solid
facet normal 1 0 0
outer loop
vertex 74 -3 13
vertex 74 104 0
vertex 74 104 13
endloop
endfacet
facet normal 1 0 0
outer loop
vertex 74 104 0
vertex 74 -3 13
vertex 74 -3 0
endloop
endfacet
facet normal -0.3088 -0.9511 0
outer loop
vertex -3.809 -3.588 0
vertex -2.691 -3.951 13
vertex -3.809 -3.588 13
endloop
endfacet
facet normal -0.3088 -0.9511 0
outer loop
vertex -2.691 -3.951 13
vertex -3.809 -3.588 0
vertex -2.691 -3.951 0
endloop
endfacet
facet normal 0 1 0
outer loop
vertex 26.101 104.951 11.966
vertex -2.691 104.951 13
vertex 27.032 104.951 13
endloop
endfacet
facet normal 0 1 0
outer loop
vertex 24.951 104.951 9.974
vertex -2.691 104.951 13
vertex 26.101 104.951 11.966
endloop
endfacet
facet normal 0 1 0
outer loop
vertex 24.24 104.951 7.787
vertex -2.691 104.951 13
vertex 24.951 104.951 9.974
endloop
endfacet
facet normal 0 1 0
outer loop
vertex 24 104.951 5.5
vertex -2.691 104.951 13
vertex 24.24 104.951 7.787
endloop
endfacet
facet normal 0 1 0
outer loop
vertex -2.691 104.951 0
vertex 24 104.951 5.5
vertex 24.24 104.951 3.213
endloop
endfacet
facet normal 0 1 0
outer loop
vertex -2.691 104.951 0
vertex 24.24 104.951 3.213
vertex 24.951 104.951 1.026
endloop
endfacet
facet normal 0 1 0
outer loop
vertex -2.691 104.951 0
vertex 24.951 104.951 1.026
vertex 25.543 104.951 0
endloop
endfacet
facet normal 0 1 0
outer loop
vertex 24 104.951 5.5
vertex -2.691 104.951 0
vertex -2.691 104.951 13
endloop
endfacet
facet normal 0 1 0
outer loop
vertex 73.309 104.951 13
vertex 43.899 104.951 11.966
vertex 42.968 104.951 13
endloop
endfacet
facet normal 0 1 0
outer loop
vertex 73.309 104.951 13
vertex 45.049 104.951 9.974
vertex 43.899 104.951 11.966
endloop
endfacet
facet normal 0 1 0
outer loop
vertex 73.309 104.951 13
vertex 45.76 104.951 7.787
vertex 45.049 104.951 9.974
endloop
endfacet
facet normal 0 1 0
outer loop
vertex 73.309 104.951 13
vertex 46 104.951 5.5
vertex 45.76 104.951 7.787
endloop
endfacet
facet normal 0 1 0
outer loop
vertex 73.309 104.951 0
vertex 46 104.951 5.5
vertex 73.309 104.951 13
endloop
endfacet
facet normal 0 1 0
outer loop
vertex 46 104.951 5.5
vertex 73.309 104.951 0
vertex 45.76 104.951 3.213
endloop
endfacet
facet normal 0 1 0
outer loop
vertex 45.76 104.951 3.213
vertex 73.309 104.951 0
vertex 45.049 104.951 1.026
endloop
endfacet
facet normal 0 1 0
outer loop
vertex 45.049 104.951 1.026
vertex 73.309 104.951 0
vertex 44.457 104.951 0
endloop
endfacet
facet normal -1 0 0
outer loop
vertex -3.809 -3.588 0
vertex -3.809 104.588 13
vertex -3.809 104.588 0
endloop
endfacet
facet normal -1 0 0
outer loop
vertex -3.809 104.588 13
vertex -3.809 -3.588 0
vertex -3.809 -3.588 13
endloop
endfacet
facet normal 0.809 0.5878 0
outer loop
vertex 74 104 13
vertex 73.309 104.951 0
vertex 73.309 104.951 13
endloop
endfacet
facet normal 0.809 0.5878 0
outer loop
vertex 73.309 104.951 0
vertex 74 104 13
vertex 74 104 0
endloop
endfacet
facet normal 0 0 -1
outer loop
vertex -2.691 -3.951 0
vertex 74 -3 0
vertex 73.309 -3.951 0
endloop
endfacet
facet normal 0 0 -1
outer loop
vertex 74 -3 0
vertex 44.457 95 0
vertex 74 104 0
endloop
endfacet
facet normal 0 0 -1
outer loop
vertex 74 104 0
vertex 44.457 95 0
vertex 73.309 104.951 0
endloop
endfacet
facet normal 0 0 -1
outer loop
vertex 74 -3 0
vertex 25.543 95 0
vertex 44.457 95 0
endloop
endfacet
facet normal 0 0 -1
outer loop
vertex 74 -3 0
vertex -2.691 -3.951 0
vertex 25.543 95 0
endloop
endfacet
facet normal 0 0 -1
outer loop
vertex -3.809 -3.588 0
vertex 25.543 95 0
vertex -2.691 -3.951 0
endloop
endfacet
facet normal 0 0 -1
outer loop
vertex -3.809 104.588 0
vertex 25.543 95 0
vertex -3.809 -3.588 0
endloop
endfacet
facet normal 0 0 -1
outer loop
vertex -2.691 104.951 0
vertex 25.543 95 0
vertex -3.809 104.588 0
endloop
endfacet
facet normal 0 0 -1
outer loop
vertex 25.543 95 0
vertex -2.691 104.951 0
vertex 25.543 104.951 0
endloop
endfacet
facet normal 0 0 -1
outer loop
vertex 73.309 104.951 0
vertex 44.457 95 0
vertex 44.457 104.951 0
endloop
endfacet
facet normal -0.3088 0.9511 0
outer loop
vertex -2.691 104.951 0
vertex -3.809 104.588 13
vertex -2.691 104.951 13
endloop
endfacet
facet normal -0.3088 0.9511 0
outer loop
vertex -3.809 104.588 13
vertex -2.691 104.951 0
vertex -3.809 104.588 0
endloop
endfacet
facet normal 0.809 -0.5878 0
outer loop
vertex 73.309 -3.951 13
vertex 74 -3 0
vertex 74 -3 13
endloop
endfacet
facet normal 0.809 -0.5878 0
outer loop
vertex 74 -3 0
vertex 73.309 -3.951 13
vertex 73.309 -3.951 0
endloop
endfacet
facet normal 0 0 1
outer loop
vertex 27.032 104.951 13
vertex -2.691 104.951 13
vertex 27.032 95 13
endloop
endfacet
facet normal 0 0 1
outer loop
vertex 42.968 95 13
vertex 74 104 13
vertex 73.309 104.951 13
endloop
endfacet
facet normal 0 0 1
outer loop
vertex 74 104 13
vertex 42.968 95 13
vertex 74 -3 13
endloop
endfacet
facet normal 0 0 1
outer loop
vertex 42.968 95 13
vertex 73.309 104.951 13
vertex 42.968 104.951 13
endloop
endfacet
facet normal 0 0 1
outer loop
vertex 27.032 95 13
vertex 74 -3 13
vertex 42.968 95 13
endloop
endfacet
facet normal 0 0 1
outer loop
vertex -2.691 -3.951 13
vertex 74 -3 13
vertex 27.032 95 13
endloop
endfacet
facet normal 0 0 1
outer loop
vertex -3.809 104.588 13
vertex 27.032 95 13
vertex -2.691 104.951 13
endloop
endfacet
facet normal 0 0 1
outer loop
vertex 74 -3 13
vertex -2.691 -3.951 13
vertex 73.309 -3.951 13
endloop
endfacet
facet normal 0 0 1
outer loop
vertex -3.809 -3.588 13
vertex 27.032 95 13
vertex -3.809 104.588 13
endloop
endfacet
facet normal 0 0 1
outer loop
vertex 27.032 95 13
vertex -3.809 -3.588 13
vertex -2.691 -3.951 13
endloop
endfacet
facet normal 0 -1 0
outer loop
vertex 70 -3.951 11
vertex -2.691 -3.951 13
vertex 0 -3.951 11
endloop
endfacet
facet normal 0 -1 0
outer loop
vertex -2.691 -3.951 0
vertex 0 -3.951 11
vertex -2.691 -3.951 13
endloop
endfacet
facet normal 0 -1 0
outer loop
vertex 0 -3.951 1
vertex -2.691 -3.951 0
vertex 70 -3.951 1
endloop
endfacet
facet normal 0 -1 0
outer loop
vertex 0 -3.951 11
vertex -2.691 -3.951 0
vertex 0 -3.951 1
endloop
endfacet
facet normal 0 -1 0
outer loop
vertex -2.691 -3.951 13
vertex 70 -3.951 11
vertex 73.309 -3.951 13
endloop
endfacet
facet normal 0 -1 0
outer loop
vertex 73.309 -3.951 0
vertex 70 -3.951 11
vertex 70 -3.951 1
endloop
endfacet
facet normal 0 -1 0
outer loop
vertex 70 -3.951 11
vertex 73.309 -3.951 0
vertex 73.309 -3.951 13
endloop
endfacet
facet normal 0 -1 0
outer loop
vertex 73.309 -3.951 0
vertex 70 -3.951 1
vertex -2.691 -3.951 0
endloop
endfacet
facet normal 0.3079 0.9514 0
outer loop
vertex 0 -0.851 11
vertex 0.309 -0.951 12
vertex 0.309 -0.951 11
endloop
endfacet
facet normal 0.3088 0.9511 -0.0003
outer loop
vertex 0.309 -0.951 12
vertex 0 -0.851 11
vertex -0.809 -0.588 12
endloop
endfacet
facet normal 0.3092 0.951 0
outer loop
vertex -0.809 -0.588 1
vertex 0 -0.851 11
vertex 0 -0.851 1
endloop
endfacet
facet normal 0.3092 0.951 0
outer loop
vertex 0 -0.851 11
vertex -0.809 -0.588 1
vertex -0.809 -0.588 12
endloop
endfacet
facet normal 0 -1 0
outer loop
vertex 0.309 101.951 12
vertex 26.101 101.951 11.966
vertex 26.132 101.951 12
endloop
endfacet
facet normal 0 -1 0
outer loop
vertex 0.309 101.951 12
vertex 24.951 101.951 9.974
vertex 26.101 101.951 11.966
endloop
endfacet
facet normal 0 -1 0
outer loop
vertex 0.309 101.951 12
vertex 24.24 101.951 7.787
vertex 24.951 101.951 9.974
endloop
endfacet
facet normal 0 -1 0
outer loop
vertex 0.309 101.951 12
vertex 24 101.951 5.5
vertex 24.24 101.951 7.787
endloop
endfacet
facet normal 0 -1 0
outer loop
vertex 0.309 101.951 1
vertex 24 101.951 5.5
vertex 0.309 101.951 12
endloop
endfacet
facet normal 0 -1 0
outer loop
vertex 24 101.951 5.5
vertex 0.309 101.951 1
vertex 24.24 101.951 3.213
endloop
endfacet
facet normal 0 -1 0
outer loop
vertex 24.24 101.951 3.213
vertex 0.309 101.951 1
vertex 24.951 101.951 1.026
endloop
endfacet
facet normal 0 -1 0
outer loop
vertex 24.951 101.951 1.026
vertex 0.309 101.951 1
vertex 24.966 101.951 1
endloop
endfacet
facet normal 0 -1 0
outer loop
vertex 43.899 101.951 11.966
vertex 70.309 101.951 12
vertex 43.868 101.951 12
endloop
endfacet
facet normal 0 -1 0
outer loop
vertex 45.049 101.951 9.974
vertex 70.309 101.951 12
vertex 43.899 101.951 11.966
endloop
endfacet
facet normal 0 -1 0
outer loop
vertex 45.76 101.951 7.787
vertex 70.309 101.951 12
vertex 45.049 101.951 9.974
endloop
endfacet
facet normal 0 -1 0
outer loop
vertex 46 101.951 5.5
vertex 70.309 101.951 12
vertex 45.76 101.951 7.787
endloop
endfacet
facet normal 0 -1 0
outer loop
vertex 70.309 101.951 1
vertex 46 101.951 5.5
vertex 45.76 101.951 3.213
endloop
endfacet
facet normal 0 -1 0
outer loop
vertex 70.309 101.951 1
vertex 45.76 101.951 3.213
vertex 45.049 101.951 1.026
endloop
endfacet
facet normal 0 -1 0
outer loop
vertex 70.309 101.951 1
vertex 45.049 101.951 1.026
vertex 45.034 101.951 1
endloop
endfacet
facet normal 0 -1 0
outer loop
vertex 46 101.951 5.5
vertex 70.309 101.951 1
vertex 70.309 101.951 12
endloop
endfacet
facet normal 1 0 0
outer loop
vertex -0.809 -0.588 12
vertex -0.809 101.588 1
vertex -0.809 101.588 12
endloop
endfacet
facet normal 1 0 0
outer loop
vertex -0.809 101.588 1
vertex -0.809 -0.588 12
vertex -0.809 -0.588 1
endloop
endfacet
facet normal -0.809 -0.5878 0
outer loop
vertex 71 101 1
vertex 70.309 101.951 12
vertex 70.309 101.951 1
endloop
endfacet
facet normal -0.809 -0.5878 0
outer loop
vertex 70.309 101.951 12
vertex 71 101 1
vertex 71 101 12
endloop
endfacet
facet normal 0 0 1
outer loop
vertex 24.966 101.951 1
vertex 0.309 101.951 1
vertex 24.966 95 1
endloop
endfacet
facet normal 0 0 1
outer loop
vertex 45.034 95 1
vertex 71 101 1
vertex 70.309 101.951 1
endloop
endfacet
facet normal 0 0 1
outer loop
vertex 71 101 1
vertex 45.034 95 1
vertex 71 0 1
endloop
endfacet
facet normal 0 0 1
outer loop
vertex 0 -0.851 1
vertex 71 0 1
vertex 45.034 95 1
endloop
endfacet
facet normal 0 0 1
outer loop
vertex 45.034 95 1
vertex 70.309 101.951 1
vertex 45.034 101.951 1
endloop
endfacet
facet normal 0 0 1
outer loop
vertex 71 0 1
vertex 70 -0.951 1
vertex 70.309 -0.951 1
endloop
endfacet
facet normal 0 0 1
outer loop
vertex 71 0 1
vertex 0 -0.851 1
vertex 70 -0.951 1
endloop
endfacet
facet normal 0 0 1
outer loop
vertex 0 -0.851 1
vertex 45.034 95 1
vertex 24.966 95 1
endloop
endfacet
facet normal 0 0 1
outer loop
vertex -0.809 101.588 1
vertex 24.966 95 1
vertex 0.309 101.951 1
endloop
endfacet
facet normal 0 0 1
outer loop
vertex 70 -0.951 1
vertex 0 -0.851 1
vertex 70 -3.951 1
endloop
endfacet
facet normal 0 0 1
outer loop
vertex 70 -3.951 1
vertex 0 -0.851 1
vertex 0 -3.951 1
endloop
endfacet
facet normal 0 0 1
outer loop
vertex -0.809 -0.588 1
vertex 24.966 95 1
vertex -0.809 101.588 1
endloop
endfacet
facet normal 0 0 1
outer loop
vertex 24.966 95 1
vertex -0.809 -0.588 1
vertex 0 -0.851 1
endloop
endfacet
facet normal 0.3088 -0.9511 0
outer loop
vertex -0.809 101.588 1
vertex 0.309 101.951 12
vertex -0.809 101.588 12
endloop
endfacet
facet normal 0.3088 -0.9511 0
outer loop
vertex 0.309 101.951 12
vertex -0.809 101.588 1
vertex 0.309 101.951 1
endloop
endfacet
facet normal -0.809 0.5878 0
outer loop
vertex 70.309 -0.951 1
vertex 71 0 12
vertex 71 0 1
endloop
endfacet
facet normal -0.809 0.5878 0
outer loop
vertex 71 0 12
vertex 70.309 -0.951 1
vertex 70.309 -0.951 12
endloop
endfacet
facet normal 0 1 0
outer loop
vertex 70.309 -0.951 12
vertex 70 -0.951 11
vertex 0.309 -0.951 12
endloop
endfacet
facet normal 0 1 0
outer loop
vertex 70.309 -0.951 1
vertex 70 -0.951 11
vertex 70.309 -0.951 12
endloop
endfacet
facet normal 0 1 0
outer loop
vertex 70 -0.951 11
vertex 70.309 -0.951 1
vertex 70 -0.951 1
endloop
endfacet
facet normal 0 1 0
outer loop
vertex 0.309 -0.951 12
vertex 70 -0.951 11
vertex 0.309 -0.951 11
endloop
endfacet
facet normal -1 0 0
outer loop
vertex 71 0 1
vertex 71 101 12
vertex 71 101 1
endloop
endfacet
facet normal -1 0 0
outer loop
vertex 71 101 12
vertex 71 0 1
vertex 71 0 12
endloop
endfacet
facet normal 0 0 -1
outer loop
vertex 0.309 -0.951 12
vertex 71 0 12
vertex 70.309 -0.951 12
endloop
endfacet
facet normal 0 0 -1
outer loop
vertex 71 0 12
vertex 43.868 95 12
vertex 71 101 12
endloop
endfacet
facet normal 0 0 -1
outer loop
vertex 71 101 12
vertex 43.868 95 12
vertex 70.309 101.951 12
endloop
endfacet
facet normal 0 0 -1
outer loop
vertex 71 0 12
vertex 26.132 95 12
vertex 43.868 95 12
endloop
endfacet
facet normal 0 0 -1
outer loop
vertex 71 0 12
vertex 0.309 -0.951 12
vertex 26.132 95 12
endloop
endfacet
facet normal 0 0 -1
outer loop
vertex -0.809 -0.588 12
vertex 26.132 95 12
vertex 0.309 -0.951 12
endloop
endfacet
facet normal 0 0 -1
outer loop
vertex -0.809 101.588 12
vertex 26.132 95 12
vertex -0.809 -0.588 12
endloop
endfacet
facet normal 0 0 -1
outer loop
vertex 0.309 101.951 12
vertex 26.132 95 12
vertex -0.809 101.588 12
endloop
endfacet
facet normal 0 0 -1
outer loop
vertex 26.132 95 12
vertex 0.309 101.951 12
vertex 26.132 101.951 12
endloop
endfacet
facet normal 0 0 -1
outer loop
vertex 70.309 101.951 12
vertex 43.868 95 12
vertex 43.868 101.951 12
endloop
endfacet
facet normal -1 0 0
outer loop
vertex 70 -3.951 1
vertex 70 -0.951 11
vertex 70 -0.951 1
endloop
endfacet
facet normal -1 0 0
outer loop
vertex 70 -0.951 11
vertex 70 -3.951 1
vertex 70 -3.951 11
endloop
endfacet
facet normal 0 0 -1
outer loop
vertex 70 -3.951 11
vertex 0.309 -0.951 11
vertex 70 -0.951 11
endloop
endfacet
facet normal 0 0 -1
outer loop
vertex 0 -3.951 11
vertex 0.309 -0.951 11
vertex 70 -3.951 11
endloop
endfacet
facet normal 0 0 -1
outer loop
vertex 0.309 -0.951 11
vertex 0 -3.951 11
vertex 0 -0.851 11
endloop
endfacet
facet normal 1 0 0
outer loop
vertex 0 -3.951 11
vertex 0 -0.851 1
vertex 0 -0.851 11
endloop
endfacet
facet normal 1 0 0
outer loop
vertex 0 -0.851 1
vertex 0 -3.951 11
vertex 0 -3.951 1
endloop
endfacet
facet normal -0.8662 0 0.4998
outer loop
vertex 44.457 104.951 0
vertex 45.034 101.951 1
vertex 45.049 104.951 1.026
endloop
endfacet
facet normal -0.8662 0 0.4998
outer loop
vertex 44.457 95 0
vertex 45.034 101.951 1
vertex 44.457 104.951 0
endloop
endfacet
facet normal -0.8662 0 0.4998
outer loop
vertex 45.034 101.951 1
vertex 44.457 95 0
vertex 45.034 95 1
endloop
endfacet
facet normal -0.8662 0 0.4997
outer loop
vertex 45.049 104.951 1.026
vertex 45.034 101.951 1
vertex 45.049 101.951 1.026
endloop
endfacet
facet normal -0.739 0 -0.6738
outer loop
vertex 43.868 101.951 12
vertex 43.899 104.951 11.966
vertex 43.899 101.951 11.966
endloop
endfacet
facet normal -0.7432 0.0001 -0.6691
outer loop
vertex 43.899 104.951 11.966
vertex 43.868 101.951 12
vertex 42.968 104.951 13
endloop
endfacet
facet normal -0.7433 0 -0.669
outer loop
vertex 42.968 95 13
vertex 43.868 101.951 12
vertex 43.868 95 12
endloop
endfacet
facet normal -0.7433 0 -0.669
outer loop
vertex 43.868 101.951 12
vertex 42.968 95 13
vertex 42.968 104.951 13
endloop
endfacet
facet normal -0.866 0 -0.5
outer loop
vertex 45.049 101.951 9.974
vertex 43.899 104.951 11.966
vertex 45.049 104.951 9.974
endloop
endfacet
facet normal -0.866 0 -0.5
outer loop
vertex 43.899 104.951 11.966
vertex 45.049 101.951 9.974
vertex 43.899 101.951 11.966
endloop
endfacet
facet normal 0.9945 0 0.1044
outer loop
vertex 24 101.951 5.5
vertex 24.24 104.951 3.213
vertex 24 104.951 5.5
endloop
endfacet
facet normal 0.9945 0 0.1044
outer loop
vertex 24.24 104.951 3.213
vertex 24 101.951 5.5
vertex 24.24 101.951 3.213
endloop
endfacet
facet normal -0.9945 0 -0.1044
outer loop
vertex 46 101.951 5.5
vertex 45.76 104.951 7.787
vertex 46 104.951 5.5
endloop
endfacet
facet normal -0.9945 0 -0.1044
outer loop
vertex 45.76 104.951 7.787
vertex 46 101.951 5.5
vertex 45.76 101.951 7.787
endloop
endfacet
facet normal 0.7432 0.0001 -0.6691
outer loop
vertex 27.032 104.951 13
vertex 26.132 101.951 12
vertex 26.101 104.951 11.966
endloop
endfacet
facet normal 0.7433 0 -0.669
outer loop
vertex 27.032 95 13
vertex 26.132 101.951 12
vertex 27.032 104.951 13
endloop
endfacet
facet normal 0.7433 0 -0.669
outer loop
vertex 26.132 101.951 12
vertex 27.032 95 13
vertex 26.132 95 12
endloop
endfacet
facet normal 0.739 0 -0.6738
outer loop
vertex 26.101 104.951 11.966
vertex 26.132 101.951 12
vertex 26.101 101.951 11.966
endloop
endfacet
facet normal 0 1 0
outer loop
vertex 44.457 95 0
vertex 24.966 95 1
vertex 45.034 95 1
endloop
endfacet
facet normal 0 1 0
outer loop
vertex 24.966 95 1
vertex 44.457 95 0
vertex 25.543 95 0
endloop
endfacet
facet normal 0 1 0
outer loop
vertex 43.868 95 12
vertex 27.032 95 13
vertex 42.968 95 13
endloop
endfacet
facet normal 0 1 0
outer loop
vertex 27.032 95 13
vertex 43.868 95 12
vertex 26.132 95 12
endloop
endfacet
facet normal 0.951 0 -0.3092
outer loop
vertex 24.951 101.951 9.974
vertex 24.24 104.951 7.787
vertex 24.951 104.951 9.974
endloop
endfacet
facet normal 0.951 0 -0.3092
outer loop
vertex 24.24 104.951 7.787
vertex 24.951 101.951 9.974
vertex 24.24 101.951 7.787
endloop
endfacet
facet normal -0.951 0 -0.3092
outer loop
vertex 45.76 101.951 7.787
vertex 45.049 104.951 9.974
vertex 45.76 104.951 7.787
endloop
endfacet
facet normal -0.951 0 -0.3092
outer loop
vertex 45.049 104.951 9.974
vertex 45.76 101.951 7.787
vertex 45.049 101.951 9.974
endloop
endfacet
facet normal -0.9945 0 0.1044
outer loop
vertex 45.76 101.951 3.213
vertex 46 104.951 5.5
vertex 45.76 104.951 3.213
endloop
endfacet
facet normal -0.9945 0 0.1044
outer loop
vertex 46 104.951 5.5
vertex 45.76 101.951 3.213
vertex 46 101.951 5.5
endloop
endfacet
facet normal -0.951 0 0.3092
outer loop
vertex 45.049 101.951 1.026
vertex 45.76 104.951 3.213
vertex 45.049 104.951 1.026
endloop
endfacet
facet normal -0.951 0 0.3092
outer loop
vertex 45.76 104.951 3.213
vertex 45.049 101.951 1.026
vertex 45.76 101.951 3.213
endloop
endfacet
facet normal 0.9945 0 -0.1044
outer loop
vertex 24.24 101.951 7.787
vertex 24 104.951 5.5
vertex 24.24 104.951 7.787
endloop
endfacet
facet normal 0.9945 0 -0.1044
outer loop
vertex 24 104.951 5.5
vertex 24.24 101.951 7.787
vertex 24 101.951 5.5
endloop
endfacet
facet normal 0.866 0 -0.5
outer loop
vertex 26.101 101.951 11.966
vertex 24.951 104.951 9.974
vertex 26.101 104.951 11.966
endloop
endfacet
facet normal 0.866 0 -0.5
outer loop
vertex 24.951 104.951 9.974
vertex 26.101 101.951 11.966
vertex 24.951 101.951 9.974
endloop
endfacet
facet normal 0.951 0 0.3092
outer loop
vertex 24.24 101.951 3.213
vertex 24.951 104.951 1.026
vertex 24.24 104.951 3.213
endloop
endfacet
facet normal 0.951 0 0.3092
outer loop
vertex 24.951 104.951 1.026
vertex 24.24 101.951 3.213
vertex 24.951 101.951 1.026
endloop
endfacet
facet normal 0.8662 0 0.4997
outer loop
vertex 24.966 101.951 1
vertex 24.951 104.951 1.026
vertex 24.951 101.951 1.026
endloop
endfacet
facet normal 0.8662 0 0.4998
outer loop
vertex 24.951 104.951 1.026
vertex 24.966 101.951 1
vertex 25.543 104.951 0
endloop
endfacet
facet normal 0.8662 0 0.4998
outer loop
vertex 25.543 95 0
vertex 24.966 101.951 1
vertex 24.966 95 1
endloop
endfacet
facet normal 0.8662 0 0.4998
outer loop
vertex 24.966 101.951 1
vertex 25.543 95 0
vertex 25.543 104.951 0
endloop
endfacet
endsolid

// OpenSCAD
// file: case.scad
module case (width, length, wall_height, wall_thickness, x_offset, y_offset, z_offset){
    //Negative space
    top_right_point = [width + x_offset, length + y_offset, z_offset];
    top_left_point = [width + x_offset, y_offset, z_offset];
    bottom_right_point = [x_offset, length + y_offset, z_offset];
    bottom_left_point = [x_offset, y_offset, z_offset];

    //Base space
    top_right_point_base = [width + wall_thickness, length + wall_thickness, 0];
    top_left_point_base = [width + wall_thickness, -wall_thickness, 0];
    bottom_right_point_base = [-wall_thickness, length + wall_thickness, 0];
    bottom_left_point_base = [-wall_thickness, -wall_thickness, 0];
    
    //Lists for the for loops
    base_points = [top_right_point_base, top_left_point_base, bottom_right_point_base, bottom_left_point_base];
    points = [top_right_point, top_left_point, bottom_right_point, bottom_left_point];

    difference(){
        hull(){
            for (point = base_points){
                translate(point){
                    cylinder(height);
                }
            }
        }
        hull(){
            for (point = points){
                translate(point){
                    cylinder(height);
                }
            }
        }
    }
}

module roofed_case(width, length, wall_height, wall_thickness, x_offset, y_offset, z_offset, roof_thickness){
    case(width, length, wall_height, wall_thickness, x_offset, y_offset, z_offset);
    top_right_point_base = [width + wall_thickness, length + wall_thickness, wall_height];
    top_left_point_base = [width + wall_thickness, -wall_thickness, wall_height ];
    bottom_right_point_base = [-wall_thickness, length + wall_thickness, wall_height];
    bottom_left_point_base = [-wall_thickness, -wall_thickness, wall_height];
    points = [top_right_point_base, top_left_point_base, bottom_right_point_base, bottom_left_point_base];
    hull(){
           for(point = points){
               translate(point) cylinder(roof_thickness);
           }
    }
    
}

//Changeable values
width = 100;
length = 100;
wall_height = 10;
x_offset = 0;
y_offset = 0;
z_offset = 1;
wall_thickness = 3;
roof_thickness = 3;

//Non-changeable values
height = z_offset + wall_height;

//This is for making sure it renders correctly
/*
translate([0, 0, wall_height + 10]){
    case(width,
        length,
        wall_height,
        wall_thickness,
        x_offset,
        y_offset,
        z_offset);
}

roofed_case(width,
     length,
     wall_height,
     wall_thickness,
     x_offset,
     y_offset,
     z_offset);
*/
// main file
include<case.scad>

//Changeable values
width = 70;
length = 101;
wall_height = 12;
x_offset = 0;
y_offset = 0;
z_offset = 1;
wall_thickness = 3;

//Opening
disk_x = 70;
disk_y = wall_thickness + 3;
disk_z = 10;
position_disk_x = 0;
position_disk_y = -4;
position_disk_z = z_offset;

//Manual eject
heigh_eject = 10;
radius_1_eject = 22/2;
radius_2_eject = 22/2;
position_eject_x = width/2;
position_eject_y = 105;
position_eject_z = radius_1_eject/2;
rotate_eject_x = 90;
rotate_eject_y = 0;
rotate_eject_z = -0;

//Non-changeable values
height = z_offset + wall_height;

module make_25_holder(){
	difference(){
		roofed_case(width,
		     length,
		     wall_height,
		     wall_thickness,
		     x_offset,
		     y_offset,
		     z_offset);
		translate([position_disk_x, position_disk_y, position_disk_z]) {
		    color([0, 1, 0]) cube([disk_x, disk_y, disk_z]);
		}
		translate([position_eject_x, position_eject_y, position_eject_z]){
		    rotate([rotate_eject_x, rotate_eject_y, rotate_eject_z]){
			    color([0, 1, 0]) cylinder(heigh_eject, radius_1_eject, radius_2_eject);
		    }
		}
	}
}

make_25_holder();
